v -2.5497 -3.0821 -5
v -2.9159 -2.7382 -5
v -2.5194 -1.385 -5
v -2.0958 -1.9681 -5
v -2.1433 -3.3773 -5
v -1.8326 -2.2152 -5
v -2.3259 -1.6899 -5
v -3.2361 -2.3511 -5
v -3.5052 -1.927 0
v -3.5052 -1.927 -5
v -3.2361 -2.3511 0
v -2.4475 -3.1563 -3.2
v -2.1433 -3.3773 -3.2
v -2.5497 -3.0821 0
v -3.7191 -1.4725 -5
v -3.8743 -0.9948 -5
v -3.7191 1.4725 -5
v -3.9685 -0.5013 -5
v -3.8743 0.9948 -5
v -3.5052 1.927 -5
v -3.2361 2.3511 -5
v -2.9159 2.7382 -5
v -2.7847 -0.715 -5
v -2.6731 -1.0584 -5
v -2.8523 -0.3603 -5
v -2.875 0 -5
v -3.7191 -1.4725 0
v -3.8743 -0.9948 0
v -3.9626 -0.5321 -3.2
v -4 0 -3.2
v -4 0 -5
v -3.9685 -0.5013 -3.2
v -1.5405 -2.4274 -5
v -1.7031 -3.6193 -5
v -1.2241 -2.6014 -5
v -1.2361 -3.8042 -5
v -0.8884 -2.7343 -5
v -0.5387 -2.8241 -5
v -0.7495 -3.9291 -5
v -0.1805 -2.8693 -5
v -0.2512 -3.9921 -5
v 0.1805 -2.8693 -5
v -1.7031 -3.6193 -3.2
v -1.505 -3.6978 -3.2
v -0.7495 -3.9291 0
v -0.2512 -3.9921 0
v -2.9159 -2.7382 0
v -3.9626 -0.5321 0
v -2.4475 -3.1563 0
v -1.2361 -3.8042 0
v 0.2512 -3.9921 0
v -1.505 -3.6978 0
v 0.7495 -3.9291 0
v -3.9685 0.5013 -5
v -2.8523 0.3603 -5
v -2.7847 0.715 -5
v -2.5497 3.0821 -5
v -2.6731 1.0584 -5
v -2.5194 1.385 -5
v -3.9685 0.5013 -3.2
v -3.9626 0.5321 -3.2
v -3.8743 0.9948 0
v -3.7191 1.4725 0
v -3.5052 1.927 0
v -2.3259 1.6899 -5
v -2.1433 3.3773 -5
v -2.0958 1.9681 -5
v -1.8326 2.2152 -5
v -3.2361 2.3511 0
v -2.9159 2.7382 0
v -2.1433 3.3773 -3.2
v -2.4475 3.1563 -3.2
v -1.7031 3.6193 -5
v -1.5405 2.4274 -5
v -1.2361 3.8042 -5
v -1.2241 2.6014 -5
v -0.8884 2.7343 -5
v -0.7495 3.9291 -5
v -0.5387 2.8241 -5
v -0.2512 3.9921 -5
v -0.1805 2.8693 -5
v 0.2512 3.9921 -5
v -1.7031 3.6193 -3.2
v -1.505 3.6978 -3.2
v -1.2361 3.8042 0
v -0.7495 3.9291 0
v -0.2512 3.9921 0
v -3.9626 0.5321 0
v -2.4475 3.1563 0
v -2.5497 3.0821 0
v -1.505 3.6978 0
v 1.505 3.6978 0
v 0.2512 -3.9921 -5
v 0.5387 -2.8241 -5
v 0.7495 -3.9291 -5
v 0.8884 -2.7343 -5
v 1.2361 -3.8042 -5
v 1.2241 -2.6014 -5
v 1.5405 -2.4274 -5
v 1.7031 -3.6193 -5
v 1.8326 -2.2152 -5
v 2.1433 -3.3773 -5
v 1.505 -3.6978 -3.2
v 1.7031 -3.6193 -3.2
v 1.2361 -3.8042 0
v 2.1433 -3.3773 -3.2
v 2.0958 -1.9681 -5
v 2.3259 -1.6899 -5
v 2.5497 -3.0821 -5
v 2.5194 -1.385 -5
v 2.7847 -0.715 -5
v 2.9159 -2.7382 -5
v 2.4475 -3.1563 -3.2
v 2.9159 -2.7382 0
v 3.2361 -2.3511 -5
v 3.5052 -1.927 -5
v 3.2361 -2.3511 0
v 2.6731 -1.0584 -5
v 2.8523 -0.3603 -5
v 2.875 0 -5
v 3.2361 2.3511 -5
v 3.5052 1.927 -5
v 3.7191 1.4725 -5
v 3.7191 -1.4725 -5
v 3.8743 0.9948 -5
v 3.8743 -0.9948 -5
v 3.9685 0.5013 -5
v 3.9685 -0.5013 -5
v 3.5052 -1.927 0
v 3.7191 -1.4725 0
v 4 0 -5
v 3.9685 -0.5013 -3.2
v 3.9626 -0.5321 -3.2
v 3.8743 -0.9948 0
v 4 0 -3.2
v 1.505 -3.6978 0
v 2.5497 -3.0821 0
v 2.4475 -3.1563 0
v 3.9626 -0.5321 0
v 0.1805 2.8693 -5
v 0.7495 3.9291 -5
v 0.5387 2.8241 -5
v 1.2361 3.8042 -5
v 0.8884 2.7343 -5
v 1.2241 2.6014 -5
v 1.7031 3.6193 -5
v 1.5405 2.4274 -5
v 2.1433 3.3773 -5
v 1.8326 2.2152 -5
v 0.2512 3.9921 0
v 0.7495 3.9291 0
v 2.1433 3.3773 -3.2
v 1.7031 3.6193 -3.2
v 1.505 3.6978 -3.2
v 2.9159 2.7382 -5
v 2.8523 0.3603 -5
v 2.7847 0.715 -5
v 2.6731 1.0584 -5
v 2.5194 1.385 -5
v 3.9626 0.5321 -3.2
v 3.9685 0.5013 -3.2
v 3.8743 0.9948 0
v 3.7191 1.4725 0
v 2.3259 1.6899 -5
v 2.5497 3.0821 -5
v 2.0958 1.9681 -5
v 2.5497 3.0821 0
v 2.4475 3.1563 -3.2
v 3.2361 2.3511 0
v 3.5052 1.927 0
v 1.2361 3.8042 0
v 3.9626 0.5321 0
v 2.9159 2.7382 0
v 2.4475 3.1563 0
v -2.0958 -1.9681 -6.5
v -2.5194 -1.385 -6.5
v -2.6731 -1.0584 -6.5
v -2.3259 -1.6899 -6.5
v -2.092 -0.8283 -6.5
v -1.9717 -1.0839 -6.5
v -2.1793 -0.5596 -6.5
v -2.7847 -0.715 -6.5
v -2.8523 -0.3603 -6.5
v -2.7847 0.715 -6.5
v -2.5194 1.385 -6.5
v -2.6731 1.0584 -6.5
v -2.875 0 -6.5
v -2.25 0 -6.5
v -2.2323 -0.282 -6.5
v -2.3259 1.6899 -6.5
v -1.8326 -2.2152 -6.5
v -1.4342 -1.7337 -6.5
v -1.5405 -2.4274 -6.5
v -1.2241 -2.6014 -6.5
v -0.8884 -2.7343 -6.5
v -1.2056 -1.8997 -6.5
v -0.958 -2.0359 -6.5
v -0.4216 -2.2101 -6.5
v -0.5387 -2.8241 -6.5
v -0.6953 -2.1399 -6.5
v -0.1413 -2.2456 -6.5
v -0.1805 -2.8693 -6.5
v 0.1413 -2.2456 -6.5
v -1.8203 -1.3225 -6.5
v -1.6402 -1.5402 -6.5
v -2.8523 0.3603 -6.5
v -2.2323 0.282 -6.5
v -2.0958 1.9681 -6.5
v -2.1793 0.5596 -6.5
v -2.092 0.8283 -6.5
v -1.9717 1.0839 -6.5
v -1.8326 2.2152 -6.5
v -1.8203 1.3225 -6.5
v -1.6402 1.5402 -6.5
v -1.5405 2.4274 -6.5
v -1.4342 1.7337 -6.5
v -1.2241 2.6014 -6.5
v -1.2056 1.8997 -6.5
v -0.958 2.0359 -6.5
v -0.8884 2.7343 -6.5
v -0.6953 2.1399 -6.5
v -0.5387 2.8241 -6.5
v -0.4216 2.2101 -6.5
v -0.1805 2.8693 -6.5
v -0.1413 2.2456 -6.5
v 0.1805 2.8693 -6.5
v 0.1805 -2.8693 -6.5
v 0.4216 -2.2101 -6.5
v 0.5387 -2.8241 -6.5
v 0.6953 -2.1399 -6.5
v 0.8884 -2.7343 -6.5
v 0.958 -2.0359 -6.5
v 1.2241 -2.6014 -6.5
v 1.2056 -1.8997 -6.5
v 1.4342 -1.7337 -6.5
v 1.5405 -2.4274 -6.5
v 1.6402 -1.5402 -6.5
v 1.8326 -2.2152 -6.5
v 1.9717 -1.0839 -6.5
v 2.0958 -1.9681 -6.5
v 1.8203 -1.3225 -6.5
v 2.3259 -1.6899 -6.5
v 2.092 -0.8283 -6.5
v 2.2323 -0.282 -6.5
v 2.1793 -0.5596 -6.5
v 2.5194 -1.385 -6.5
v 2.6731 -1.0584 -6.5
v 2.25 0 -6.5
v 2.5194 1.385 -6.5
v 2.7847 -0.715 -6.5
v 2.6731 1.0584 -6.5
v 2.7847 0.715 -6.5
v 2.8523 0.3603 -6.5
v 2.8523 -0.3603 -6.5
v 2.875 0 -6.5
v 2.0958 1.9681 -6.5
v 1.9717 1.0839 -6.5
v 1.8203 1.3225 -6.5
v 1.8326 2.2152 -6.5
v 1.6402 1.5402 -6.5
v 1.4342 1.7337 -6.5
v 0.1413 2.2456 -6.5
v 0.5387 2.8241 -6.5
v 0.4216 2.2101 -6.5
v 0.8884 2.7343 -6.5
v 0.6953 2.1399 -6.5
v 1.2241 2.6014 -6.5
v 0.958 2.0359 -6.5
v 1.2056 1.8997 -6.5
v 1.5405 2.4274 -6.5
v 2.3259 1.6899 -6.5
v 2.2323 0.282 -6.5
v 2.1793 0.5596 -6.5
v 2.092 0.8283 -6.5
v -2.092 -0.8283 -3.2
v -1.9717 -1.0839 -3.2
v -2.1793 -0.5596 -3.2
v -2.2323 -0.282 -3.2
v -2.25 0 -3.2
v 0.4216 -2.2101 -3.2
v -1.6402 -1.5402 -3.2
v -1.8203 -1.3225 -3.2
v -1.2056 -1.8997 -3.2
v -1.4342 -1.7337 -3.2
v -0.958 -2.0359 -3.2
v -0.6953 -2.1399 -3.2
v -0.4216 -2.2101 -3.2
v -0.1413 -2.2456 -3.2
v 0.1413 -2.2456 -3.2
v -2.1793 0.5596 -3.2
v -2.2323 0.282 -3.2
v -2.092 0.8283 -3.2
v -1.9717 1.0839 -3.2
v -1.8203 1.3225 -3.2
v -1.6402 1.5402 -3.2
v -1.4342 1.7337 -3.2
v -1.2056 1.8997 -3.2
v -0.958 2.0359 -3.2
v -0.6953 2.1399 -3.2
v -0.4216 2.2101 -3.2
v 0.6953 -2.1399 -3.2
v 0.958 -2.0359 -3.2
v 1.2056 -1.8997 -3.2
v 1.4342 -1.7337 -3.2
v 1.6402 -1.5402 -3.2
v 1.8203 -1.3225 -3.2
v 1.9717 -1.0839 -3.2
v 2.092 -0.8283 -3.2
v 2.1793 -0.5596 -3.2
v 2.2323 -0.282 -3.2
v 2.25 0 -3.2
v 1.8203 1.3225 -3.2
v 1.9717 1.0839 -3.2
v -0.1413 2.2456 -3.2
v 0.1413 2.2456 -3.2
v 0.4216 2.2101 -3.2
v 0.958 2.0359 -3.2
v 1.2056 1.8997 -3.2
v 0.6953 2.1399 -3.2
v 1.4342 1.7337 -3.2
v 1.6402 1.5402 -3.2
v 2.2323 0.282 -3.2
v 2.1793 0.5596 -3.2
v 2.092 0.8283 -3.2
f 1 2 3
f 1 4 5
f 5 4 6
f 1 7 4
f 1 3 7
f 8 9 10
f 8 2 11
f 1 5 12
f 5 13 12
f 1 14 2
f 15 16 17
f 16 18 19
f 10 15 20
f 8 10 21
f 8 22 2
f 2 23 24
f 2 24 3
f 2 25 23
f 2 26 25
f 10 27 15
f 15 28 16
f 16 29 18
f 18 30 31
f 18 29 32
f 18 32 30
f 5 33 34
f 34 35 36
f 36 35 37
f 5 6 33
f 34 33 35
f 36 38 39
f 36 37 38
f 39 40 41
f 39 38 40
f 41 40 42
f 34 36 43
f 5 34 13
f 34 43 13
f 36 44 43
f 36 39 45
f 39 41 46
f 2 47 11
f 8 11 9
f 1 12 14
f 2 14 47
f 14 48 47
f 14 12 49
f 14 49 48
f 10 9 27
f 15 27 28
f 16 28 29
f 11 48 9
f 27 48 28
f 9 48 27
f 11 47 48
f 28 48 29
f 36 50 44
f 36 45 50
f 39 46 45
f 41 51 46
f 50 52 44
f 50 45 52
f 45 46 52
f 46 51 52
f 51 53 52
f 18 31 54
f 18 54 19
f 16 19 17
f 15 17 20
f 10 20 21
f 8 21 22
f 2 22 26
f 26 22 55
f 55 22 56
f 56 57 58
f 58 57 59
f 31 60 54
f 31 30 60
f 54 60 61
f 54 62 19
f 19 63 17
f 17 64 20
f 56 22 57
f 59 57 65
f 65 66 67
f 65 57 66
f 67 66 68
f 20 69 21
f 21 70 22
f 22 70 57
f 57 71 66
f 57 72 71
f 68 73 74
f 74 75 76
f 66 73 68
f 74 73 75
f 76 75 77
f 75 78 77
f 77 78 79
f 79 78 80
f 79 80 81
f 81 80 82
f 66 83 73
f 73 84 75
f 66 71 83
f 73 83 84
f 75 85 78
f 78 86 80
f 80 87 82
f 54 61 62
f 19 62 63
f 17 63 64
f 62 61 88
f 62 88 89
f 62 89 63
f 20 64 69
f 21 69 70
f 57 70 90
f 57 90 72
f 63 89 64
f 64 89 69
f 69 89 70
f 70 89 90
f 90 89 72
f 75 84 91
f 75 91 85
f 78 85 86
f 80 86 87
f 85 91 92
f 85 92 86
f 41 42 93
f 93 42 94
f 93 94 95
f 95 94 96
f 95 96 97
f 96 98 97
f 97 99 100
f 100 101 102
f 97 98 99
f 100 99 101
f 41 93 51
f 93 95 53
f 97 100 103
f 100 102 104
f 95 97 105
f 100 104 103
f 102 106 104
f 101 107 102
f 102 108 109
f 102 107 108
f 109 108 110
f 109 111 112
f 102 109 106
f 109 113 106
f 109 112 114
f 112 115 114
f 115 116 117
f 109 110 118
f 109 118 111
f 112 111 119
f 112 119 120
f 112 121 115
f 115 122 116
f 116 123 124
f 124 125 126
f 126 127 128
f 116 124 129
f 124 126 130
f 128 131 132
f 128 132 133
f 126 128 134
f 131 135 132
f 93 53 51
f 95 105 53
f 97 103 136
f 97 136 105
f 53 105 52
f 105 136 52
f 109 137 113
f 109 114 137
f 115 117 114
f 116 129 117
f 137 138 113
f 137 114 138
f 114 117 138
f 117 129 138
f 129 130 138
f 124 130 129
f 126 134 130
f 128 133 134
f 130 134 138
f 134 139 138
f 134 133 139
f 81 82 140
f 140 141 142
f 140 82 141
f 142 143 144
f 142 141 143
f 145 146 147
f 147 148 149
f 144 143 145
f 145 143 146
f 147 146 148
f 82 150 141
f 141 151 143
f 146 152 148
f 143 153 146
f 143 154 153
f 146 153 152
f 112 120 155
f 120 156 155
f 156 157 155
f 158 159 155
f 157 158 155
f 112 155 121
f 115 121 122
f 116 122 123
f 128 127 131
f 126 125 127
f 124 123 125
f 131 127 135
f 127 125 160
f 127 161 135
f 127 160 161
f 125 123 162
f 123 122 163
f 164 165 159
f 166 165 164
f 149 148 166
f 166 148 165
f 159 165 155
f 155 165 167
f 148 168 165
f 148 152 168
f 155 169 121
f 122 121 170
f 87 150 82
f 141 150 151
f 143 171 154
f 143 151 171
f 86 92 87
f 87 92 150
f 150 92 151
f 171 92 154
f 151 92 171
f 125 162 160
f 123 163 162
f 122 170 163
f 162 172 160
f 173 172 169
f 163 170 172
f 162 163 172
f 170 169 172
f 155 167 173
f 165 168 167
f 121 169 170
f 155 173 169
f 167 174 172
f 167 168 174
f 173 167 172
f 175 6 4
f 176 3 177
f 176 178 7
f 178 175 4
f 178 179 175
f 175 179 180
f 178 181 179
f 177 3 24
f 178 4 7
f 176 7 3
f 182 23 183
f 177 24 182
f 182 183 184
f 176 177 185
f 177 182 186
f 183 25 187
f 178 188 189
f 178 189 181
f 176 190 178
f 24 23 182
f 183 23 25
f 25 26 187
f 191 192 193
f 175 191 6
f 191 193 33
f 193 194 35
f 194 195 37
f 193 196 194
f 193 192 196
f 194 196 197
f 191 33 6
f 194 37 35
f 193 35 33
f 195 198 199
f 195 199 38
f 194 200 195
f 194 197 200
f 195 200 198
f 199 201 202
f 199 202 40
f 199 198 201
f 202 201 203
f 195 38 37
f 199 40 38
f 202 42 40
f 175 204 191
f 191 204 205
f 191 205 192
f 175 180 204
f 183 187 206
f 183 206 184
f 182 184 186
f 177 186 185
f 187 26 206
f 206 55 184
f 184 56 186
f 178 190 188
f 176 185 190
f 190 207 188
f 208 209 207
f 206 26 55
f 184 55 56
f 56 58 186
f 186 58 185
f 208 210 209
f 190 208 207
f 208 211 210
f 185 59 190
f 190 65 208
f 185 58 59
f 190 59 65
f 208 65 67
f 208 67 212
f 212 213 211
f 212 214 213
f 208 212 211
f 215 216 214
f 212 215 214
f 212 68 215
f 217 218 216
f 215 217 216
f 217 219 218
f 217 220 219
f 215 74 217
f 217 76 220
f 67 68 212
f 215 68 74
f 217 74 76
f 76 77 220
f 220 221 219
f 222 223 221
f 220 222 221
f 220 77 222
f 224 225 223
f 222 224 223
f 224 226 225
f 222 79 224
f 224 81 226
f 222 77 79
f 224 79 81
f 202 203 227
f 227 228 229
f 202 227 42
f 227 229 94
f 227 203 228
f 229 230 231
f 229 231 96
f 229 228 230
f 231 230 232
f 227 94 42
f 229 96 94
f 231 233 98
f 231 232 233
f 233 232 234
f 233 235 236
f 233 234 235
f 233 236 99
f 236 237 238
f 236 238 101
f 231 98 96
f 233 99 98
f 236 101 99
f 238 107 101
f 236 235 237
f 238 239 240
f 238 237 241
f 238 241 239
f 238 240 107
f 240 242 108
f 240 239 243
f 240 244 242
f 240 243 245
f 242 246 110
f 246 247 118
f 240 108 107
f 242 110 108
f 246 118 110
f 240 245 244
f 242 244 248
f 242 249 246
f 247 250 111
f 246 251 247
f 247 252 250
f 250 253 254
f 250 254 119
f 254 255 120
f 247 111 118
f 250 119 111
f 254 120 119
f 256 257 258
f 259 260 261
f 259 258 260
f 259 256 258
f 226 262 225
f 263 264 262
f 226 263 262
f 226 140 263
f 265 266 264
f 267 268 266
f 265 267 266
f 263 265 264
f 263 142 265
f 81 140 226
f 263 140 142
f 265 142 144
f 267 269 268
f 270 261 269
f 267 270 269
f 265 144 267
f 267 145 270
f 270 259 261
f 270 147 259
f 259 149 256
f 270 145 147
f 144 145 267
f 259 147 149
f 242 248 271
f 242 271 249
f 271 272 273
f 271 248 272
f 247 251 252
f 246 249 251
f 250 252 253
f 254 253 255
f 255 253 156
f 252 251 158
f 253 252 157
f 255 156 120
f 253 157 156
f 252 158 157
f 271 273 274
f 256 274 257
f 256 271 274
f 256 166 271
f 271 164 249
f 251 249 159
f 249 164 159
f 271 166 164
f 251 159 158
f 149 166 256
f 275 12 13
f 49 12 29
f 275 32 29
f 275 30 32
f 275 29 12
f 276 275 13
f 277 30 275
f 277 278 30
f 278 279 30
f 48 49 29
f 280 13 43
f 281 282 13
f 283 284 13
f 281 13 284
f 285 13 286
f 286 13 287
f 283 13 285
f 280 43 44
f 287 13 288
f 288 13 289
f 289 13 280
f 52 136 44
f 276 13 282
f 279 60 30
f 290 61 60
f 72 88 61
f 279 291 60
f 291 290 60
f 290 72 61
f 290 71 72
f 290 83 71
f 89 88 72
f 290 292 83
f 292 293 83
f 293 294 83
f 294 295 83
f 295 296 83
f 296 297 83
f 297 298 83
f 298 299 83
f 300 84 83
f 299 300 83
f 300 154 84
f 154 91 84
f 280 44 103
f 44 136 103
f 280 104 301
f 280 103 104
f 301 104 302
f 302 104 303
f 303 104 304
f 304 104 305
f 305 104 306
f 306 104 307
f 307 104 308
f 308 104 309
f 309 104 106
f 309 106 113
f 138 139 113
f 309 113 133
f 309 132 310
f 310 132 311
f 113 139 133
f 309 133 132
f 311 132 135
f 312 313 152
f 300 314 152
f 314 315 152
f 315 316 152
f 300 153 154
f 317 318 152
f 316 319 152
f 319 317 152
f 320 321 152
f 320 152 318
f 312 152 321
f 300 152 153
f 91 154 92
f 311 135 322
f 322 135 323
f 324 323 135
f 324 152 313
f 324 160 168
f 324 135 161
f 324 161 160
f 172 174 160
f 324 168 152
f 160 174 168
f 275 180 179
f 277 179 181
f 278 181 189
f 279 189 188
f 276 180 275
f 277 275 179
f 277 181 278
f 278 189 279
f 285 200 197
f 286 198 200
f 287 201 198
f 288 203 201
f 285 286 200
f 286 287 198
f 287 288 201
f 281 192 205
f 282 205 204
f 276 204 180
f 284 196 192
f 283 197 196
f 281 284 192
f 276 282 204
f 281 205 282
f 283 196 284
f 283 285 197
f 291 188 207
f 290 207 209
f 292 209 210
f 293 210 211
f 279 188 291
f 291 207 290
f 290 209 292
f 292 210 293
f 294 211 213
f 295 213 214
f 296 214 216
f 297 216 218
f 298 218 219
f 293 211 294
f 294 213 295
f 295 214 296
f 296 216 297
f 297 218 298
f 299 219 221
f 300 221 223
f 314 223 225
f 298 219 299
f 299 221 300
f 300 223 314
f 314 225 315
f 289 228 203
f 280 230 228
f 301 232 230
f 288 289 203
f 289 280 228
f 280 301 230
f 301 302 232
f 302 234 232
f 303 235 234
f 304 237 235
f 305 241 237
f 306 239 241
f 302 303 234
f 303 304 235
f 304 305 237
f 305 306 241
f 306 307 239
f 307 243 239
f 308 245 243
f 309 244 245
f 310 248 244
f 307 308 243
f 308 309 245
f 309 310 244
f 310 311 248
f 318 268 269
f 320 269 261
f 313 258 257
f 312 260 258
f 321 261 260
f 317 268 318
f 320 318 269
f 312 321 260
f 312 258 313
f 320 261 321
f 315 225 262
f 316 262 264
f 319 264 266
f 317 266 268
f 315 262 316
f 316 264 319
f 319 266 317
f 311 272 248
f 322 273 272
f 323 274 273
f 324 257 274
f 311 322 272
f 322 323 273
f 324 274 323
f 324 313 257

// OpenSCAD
$fn = 50;

difference() {
	union() {
		translate(v = [0, 0, -5.0]) {
			cylinder(h = 5.0, r = 4.0);
		}
		#translate(v = [0, 0, -6.5]) {
			cylinder(h = 6.5, r = 2.875);
		}
	}
	union() {
		translate(v = [0, 0, 0]) {
			rotate(a = [0, 0, 0]) {
				difference() {
					union() {
						translate(v = [0, 0, -3.2]) {
							linear_extrude(height = 3.2) {
								polygon(points = [[4.2698, 0.0], [2.1349000000000005, 3.697755269078796], [-2.134899999999999, 3.6977552690787965], [-4.2698, 5.228996902999369e-16], [-2.134900000000002, -3.6977552690787956], [2.1348999999999974, -3.697755269078798]]);
							}
						}
					}
					union();
				}
			}
		}
		#translate(v = [0, 0, -100.0]) {
			cylinder(h = 200, r = 2.25);
		}
	}
}
